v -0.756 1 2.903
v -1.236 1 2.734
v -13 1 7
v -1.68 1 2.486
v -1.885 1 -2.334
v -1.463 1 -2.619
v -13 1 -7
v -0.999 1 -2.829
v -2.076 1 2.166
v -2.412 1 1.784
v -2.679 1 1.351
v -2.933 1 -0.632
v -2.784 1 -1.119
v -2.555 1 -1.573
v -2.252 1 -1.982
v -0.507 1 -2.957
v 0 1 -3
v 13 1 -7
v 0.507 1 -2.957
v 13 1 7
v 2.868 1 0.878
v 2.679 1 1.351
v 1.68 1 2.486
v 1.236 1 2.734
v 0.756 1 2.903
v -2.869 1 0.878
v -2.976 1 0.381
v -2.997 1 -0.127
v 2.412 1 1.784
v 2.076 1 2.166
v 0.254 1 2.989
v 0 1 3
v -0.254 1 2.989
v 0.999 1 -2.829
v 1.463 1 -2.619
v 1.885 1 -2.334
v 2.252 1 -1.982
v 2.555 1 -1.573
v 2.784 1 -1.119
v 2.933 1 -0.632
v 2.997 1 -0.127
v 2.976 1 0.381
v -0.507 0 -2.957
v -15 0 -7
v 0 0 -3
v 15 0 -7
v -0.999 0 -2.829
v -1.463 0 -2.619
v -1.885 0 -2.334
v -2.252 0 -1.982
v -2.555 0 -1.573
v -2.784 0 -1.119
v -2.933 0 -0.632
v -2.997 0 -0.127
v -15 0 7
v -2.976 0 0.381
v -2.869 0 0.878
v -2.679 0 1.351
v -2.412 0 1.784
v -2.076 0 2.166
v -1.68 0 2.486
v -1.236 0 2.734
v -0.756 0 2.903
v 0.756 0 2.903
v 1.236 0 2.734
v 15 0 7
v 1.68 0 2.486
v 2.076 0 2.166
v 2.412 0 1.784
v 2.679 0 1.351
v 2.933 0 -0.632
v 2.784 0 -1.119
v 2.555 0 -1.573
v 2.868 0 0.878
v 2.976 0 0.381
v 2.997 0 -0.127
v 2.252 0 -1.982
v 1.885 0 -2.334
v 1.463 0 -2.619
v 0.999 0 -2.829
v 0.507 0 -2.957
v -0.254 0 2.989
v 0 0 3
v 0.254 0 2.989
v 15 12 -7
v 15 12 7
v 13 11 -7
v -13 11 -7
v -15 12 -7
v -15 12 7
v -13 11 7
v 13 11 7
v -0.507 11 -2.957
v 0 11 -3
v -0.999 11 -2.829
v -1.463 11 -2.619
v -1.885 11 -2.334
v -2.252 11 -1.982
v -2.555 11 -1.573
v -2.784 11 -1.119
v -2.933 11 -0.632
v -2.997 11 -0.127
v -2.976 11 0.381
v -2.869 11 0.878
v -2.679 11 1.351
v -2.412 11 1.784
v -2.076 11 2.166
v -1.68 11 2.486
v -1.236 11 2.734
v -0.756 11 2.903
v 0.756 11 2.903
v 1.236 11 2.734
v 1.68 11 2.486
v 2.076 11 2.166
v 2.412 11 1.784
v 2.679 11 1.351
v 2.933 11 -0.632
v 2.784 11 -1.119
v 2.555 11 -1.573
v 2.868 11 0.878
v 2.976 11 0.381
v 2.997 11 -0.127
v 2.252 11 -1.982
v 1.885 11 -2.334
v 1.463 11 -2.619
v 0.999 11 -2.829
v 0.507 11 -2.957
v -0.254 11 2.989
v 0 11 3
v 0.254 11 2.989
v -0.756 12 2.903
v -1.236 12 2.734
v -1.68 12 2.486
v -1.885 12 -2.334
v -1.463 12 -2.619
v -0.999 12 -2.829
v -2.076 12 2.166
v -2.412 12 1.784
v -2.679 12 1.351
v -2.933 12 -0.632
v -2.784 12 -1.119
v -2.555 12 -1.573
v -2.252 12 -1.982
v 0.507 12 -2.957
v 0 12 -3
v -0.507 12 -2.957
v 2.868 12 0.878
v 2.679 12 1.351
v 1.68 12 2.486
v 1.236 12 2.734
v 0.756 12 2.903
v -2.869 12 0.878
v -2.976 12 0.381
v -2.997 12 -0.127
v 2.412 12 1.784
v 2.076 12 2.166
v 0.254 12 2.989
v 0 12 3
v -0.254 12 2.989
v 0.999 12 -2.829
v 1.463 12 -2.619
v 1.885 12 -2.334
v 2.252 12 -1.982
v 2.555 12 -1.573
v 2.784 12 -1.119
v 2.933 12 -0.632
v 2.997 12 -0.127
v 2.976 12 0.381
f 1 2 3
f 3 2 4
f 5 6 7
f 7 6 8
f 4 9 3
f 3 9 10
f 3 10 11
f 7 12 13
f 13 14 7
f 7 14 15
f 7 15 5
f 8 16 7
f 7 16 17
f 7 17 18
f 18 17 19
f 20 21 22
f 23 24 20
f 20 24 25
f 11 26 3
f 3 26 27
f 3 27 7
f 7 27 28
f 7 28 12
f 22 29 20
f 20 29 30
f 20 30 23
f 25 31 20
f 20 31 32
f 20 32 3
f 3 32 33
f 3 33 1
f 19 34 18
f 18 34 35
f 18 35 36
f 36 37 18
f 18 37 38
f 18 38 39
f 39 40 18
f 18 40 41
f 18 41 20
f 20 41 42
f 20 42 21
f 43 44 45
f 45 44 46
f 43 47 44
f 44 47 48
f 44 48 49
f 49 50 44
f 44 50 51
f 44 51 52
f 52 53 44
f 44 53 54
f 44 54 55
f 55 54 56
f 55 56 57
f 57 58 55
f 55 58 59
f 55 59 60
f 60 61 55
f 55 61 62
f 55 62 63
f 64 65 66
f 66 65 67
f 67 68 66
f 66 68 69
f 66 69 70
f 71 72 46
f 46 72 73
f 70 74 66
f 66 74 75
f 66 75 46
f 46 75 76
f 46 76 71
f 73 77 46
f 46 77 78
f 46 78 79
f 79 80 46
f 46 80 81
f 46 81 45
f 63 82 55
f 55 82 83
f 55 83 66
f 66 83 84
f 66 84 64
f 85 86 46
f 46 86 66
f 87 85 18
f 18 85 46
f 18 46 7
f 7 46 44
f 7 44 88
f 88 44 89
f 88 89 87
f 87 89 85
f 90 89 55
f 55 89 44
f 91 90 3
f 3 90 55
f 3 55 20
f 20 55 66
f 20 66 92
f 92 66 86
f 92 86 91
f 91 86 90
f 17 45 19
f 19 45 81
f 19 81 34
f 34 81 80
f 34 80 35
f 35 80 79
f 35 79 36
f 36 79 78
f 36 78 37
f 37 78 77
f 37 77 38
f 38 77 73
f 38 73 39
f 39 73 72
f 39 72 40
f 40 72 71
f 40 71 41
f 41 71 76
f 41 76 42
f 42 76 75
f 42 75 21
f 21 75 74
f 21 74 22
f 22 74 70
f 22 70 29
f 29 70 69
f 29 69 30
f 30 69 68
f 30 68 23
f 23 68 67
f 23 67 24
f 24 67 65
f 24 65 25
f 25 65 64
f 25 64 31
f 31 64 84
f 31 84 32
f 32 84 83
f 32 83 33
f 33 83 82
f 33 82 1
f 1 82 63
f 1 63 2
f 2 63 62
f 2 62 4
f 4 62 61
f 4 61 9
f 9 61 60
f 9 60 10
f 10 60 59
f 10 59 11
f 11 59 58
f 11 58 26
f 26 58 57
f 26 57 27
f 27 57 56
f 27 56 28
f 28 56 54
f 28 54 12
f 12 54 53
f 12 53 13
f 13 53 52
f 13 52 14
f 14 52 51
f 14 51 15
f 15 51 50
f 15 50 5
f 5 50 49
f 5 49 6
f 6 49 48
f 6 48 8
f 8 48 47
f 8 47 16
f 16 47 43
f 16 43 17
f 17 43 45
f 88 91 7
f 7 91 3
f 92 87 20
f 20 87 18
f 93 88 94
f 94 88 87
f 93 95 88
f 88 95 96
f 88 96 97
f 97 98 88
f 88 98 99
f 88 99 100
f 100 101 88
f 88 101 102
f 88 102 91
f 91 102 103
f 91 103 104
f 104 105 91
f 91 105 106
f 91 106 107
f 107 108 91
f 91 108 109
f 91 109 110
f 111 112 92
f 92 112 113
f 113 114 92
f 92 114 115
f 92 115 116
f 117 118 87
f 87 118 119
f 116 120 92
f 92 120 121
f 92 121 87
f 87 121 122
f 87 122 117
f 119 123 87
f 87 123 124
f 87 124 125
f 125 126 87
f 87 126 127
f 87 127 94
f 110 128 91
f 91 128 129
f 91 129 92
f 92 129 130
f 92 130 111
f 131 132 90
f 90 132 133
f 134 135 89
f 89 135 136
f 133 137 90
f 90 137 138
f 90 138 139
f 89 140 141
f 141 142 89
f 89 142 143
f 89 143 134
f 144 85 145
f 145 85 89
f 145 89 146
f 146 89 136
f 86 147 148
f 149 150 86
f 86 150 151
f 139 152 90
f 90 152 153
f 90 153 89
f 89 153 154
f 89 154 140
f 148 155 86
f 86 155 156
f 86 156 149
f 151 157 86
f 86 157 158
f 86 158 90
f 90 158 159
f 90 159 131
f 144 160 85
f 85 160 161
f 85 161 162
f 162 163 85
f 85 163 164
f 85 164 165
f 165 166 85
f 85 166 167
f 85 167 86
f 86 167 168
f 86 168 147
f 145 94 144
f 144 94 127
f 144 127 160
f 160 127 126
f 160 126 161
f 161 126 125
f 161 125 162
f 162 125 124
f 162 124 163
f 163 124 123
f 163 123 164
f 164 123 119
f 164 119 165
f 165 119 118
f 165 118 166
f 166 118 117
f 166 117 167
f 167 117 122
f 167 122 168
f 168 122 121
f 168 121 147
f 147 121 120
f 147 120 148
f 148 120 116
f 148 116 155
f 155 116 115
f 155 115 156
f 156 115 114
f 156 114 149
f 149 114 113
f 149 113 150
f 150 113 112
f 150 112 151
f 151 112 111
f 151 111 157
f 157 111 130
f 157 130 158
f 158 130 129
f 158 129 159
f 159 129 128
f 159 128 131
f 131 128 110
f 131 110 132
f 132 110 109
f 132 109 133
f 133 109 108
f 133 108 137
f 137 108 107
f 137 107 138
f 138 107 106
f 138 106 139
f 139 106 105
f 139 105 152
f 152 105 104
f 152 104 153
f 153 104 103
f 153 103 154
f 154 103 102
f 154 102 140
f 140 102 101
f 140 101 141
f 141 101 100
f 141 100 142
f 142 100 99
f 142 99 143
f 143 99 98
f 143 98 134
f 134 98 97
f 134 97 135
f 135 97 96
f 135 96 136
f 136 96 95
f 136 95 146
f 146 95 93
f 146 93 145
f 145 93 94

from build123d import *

# Parameters (mm, degrees)
SKETCH_1_W      = 30
SKETCH_1_H      = 14
SKETCH_1_R      = 3
EXTRUDE_1_DEPTH = 1
SKETCH_2_W      = 2
SKETCH_2_H      = 14
EXTRUDE_2_DEPTH = 10
SKETCH_3_W      = 30
SKETCH_3_H      = 14
SKETCH_3_R      = 3
EXTRUDE_3_DEPTH = 1


with BuildPart() as part:
    # Эскиз1 → Бобышка-Вытянуть1 (new body)
    with BuildSketch(Plane(origin=(0, 0, 0), x_dir=(1, 0, 0), z_dir=(0, 1, 0))):
        Rectangle(SKETCH_1_W, SKETCH_1_H)
        with Locations(Location((0, 0, 0), (0, 0, 270))):
            Circle(SKETCH_1_R, mode=Mode.SUBTRACT)
    extrude(amount=EXTRUDE_1_DEPTH)

    # Эскиз2 → Бобышка-Вытянуть2 (add)
    with BuildSketch(Plane(origin=(0, 1, 0), x_dir=(1, 0, 0), z_dir=(0, 1, 0))):
        with Locations((-14, 0)):
            Rectangle(SKETCH_2_W, SKETCH_2_H)
        with Locations((14, 0)):
            Rectangle(SKETCH_2_W, SKETCH_2_H)
    extrude(amount=EXTRUDE_2_DEPTH)

    # Эскиз3 → Бобышка-Вытянуть3 (add)
    with BuildSketch(Plane(origin=(0, 11, 0), x_dir=(1, 0, 0), z_dir=(0, 1, 0))):
        Rectangle(SKETCH_3_W, SKETCH_3_H)
        with Locations(Location((0, 0, 0), (0, 0, 270))):
            Circle(SKETCH_3_R, mode=Mode.SUBTRACT)
    extrude(amount=EXTRUDE_3_DEPTH)


solid = part.part
